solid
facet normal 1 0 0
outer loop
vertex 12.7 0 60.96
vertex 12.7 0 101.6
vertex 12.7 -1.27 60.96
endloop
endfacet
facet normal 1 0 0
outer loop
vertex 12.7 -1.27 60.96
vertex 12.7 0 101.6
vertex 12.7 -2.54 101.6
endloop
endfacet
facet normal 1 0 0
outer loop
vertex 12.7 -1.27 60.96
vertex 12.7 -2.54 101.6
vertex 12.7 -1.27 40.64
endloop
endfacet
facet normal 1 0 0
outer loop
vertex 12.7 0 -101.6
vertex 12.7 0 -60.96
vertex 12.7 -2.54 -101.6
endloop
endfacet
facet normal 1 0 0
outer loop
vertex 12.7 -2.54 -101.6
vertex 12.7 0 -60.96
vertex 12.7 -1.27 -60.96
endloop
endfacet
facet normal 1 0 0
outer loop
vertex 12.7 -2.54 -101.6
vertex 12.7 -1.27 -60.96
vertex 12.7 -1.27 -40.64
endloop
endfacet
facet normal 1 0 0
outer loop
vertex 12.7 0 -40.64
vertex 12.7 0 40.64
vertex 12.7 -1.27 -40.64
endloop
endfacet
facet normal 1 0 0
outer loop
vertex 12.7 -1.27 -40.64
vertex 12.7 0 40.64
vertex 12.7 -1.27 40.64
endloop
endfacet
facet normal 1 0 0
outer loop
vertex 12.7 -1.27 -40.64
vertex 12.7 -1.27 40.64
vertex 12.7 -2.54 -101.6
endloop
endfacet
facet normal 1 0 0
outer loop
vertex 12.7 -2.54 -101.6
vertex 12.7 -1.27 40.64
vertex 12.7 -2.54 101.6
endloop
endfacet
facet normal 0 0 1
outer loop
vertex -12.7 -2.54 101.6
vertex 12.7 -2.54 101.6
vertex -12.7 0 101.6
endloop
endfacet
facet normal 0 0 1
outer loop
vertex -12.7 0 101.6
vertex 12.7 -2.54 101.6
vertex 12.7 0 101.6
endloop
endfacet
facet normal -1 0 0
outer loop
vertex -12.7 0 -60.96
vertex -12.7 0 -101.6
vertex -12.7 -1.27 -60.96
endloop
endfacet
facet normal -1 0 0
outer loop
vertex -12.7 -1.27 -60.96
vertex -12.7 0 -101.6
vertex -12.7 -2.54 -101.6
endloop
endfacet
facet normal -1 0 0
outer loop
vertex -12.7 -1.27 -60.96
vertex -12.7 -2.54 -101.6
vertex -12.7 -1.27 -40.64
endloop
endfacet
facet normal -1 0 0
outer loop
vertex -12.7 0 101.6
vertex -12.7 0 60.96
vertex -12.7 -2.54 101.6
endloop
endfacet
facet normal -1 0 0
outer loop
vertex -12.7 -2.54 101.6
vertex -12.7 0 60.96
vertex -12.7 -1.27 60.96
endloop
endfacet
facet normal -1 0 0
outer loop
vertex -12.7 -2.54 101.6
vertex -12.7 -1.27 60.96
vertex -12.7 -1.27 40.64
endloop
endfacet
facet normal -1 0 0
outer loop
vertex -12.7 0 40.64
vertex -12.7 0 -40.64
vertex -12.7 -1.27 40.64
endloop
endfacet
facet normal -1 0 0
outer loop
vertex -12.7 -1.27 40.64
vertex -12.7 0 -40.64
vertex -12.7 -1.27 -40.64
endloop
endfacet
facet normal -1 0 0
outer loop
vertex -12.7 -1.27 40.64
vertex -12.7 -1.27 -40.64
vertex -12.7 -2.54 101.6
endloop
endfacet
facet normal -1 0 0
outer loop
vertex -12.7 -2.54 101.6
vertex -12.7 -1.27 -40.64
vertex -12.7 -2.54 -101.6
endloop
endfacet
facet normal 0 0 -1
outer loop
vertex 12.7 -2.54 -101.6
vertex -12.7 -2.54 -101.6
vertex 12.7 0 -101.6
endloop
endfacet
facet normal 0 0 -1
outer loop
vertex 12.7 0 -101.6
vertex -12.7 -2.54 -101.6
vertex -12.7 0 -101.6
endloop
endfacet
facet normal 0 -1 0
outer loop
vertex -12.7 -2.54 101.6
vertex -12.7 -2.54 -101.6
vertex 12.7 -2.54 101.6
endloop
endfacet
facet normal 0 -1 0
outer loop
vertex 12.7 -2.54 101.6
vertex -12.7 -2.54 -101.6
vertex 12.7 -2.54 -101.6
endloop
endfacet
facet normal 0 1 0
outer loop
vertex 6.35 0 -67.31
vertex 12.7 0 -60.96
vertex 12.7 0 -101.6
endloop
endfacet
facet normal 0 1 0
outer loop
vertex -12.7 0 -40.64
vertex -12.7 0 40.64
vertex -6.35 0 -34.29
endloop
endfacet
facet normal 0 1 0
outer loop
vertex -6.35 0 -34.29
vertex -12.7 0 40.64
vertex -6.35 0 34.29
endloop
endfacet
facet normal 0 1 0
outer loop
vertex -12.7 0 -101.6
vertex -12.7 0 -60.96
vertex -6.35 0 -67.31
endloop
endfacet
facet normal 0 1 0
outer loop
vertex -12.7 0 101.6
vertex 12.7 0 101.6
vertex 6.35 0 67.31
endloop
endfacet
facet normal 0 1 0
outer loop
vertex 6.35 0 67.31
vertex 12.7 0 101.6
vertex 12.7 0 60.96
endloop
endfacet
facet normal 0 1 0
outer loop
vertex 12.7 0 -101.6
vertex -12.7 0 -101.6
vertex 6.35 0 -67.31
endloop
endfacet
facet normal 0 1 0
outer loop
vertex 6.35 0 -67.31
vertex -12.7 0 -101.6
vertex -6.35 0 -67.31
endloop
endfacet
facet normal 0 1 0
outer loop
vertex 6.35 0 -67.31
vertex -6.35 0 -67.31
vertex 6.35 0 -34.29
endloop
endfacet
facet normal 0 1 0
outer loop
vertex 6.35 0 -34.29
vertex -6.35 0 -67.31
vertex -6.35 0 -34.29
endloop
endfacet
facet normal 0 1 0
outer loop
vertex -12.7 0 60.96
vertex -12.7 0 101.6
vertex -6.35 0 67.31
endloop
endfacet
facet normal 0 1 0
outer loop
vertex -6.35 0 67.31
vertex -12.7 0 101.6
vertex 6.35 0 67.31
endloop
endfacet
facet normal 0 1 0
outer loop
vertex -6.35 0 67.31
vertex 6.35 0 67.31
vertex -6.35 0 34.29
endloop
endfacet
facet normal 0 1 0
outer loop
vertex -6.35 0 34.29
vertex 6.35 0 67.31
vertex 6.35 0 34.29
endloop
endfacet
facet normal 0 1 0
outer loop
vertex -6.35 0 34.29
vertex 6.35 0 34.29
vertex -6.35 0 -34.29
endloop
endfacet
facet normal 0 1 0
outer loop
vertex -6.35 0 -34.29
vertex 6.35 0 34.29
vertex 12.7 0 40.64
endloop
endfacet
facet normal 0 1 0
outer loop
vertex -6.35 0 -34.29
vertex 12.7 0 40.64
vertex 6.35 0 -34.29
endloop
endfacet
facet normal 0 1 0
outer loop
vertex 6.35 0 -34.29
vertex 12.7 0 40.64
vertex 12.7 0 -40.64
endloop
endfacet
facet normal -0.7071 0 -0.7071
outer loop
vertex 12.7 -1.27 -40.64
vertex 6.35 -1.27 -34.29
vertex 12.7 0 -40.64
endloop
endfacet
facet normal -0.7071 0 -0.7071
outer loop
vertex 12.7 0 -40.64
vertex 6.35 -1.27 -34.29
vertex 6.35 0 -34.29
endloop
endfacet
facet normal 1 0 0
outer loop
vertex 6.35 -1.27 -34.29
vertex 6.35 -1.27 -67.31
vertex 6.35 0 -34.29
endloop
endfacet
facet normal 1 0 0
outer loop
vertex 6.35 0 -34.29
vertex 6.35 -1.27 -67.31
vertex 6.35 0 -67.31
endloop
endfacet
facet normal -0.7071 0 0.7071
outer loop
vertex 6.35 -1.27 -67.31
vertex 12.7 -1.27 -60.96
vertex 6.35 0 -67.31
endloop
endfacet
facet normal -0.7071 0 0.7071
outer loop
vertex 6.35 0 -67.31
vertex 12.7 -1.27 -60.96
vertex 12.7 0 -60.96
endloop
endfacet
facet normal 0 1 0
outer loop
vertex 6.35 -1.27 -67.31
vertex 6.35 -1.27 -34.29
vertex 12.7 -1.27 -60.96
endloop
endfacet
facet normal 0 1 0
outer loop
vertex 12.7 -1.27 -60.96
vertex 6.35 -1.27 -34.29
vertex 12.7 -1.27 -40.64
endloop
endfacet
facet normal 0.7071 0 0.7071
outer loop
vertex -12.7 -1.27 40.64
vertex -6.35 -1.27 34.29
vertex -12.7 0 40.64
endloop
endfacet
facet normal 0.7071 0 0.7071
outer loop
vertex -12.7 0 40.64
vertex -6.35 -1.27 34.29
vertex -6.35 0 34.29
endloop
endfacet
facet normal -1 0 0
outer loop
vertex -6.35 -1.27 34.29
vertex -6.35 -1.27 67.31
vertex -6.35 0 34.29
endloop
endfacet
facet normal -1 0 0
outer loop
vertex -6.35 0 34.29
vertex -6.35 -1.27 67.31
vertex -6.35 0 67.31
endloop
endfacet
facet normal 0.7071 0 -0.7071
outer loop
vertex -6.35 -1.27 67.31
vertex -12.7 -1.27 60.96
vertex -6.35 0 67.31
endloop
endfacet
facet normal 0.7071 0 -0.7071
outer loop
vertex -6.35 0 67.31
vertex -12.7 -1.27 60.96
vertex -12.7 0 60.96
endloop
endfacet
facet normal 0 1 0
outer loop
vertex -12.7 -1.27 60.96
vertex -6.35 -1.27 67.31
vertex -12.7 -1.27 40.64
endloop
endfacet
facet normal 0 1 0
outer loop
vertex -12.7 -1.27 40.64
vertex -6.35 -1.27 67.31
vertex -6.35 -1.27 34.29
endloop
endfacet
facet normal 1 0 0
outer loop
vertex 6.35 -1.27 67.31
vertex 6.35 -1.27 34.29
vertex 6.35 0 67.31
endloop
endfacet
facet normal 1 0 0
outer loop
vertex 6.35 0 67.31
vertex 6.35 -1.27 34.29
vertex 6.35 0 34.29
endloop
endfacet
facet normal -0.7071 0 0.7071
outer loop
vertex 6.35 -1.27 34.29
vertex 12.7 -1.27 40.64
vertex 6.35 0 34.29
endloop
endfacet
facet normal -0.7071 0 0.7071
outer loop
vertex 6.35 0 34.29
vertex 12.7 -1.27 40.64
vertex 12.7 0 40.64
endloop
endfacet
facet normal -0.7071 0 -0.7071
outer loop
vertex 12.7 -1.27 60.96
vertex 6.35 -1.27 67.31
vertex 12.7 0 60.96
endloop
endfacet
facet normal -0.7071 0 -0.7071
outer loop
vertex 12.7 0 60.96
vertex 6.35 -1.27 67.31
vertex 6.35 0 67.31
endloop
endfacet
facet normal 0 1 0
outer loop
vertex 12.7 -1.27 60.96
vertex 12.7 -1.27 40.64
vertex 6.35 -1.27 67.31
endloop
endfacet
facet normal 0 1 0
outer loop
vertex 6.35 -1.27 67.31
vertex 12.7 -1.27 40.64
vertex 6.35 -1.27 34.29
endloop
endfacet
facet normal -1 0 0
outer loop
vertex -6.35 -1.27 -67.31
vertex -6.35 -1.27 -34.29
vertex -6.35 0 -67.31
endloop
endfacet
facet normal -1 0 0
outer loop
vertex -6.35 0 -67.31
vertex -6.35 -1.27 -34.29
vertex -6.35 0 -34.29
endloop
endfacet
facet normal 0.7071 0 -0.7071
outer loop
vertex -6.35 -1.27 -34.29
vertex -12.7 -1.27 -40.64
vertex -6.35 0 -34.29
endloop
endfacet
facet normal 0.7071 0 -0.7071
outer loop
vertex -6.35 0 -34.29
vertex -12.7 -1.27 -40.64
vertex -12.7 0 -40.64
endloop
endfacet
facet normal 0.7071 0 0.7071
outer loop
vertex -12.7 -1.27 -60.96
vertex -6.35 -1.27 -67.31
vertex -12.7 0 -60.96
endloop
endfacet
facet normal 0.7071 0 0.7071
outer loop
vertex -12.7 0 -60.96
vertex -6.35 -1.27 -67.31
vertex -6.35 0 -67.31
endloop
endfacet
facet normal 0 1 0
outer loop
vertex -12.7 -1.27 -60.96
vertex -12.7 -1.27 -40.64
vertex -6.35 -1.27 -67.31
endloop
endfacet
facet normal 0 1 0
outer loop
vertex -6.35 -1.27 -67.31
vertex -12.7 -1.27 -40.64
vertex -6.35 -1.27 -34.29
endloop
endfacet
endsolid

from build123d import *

# Parameters (mm, degrees)
SKETCH1_W           = 25.4
SKETCH1_H           = 203.2
BOSS_EXTRUDE1_DEPTH = 2.54
CUT_EXTRUDE1_DEPTH  = 1.27


with BuildPart() as part:
    # Sketch1 → Boss-Extrude1 (new body)
    with BuildSketch(Plane(origin=(0, 0, 0), x_dir=(1, 0, 0), z_dir=(0, 1, 0))):
        Rectangle(SKETCH1_W, SKETCH1_H)
    extrude(amount=-BOSS_EXTRUDE1_DEPTH)

    # Sketch3 → Cut-Extrude1 (cut)
    with BuildSketch(Plane(origin=(0, 0, 0), x_dir=(1, 0, 0), z_dir=(0, 1, 0))):
        Polygon((12.7, 40.64), (6.35, 34.29), (6.35, 67.31), (12.7, 60.96), align=None)
        Polygon((-6.35, 67.31), (-12.7, 60.96), (-12.7, 40.64), (-6.35, 34.29), align=None)
        Polygon((6.35, -67.31), (12.7, -60.96), (12.7, -40.64), (6.35, -34.29), align=None)
        Polygon((-6.35, -34.29), (-6.35, -67.31), (-12.7, -60.96), (-12.7, -40.64), align=None)
    extrude(amount=-CUT_EXTRUDE1_DEPTH, mode=Mode.SUBTRACT)


solid = part.part
